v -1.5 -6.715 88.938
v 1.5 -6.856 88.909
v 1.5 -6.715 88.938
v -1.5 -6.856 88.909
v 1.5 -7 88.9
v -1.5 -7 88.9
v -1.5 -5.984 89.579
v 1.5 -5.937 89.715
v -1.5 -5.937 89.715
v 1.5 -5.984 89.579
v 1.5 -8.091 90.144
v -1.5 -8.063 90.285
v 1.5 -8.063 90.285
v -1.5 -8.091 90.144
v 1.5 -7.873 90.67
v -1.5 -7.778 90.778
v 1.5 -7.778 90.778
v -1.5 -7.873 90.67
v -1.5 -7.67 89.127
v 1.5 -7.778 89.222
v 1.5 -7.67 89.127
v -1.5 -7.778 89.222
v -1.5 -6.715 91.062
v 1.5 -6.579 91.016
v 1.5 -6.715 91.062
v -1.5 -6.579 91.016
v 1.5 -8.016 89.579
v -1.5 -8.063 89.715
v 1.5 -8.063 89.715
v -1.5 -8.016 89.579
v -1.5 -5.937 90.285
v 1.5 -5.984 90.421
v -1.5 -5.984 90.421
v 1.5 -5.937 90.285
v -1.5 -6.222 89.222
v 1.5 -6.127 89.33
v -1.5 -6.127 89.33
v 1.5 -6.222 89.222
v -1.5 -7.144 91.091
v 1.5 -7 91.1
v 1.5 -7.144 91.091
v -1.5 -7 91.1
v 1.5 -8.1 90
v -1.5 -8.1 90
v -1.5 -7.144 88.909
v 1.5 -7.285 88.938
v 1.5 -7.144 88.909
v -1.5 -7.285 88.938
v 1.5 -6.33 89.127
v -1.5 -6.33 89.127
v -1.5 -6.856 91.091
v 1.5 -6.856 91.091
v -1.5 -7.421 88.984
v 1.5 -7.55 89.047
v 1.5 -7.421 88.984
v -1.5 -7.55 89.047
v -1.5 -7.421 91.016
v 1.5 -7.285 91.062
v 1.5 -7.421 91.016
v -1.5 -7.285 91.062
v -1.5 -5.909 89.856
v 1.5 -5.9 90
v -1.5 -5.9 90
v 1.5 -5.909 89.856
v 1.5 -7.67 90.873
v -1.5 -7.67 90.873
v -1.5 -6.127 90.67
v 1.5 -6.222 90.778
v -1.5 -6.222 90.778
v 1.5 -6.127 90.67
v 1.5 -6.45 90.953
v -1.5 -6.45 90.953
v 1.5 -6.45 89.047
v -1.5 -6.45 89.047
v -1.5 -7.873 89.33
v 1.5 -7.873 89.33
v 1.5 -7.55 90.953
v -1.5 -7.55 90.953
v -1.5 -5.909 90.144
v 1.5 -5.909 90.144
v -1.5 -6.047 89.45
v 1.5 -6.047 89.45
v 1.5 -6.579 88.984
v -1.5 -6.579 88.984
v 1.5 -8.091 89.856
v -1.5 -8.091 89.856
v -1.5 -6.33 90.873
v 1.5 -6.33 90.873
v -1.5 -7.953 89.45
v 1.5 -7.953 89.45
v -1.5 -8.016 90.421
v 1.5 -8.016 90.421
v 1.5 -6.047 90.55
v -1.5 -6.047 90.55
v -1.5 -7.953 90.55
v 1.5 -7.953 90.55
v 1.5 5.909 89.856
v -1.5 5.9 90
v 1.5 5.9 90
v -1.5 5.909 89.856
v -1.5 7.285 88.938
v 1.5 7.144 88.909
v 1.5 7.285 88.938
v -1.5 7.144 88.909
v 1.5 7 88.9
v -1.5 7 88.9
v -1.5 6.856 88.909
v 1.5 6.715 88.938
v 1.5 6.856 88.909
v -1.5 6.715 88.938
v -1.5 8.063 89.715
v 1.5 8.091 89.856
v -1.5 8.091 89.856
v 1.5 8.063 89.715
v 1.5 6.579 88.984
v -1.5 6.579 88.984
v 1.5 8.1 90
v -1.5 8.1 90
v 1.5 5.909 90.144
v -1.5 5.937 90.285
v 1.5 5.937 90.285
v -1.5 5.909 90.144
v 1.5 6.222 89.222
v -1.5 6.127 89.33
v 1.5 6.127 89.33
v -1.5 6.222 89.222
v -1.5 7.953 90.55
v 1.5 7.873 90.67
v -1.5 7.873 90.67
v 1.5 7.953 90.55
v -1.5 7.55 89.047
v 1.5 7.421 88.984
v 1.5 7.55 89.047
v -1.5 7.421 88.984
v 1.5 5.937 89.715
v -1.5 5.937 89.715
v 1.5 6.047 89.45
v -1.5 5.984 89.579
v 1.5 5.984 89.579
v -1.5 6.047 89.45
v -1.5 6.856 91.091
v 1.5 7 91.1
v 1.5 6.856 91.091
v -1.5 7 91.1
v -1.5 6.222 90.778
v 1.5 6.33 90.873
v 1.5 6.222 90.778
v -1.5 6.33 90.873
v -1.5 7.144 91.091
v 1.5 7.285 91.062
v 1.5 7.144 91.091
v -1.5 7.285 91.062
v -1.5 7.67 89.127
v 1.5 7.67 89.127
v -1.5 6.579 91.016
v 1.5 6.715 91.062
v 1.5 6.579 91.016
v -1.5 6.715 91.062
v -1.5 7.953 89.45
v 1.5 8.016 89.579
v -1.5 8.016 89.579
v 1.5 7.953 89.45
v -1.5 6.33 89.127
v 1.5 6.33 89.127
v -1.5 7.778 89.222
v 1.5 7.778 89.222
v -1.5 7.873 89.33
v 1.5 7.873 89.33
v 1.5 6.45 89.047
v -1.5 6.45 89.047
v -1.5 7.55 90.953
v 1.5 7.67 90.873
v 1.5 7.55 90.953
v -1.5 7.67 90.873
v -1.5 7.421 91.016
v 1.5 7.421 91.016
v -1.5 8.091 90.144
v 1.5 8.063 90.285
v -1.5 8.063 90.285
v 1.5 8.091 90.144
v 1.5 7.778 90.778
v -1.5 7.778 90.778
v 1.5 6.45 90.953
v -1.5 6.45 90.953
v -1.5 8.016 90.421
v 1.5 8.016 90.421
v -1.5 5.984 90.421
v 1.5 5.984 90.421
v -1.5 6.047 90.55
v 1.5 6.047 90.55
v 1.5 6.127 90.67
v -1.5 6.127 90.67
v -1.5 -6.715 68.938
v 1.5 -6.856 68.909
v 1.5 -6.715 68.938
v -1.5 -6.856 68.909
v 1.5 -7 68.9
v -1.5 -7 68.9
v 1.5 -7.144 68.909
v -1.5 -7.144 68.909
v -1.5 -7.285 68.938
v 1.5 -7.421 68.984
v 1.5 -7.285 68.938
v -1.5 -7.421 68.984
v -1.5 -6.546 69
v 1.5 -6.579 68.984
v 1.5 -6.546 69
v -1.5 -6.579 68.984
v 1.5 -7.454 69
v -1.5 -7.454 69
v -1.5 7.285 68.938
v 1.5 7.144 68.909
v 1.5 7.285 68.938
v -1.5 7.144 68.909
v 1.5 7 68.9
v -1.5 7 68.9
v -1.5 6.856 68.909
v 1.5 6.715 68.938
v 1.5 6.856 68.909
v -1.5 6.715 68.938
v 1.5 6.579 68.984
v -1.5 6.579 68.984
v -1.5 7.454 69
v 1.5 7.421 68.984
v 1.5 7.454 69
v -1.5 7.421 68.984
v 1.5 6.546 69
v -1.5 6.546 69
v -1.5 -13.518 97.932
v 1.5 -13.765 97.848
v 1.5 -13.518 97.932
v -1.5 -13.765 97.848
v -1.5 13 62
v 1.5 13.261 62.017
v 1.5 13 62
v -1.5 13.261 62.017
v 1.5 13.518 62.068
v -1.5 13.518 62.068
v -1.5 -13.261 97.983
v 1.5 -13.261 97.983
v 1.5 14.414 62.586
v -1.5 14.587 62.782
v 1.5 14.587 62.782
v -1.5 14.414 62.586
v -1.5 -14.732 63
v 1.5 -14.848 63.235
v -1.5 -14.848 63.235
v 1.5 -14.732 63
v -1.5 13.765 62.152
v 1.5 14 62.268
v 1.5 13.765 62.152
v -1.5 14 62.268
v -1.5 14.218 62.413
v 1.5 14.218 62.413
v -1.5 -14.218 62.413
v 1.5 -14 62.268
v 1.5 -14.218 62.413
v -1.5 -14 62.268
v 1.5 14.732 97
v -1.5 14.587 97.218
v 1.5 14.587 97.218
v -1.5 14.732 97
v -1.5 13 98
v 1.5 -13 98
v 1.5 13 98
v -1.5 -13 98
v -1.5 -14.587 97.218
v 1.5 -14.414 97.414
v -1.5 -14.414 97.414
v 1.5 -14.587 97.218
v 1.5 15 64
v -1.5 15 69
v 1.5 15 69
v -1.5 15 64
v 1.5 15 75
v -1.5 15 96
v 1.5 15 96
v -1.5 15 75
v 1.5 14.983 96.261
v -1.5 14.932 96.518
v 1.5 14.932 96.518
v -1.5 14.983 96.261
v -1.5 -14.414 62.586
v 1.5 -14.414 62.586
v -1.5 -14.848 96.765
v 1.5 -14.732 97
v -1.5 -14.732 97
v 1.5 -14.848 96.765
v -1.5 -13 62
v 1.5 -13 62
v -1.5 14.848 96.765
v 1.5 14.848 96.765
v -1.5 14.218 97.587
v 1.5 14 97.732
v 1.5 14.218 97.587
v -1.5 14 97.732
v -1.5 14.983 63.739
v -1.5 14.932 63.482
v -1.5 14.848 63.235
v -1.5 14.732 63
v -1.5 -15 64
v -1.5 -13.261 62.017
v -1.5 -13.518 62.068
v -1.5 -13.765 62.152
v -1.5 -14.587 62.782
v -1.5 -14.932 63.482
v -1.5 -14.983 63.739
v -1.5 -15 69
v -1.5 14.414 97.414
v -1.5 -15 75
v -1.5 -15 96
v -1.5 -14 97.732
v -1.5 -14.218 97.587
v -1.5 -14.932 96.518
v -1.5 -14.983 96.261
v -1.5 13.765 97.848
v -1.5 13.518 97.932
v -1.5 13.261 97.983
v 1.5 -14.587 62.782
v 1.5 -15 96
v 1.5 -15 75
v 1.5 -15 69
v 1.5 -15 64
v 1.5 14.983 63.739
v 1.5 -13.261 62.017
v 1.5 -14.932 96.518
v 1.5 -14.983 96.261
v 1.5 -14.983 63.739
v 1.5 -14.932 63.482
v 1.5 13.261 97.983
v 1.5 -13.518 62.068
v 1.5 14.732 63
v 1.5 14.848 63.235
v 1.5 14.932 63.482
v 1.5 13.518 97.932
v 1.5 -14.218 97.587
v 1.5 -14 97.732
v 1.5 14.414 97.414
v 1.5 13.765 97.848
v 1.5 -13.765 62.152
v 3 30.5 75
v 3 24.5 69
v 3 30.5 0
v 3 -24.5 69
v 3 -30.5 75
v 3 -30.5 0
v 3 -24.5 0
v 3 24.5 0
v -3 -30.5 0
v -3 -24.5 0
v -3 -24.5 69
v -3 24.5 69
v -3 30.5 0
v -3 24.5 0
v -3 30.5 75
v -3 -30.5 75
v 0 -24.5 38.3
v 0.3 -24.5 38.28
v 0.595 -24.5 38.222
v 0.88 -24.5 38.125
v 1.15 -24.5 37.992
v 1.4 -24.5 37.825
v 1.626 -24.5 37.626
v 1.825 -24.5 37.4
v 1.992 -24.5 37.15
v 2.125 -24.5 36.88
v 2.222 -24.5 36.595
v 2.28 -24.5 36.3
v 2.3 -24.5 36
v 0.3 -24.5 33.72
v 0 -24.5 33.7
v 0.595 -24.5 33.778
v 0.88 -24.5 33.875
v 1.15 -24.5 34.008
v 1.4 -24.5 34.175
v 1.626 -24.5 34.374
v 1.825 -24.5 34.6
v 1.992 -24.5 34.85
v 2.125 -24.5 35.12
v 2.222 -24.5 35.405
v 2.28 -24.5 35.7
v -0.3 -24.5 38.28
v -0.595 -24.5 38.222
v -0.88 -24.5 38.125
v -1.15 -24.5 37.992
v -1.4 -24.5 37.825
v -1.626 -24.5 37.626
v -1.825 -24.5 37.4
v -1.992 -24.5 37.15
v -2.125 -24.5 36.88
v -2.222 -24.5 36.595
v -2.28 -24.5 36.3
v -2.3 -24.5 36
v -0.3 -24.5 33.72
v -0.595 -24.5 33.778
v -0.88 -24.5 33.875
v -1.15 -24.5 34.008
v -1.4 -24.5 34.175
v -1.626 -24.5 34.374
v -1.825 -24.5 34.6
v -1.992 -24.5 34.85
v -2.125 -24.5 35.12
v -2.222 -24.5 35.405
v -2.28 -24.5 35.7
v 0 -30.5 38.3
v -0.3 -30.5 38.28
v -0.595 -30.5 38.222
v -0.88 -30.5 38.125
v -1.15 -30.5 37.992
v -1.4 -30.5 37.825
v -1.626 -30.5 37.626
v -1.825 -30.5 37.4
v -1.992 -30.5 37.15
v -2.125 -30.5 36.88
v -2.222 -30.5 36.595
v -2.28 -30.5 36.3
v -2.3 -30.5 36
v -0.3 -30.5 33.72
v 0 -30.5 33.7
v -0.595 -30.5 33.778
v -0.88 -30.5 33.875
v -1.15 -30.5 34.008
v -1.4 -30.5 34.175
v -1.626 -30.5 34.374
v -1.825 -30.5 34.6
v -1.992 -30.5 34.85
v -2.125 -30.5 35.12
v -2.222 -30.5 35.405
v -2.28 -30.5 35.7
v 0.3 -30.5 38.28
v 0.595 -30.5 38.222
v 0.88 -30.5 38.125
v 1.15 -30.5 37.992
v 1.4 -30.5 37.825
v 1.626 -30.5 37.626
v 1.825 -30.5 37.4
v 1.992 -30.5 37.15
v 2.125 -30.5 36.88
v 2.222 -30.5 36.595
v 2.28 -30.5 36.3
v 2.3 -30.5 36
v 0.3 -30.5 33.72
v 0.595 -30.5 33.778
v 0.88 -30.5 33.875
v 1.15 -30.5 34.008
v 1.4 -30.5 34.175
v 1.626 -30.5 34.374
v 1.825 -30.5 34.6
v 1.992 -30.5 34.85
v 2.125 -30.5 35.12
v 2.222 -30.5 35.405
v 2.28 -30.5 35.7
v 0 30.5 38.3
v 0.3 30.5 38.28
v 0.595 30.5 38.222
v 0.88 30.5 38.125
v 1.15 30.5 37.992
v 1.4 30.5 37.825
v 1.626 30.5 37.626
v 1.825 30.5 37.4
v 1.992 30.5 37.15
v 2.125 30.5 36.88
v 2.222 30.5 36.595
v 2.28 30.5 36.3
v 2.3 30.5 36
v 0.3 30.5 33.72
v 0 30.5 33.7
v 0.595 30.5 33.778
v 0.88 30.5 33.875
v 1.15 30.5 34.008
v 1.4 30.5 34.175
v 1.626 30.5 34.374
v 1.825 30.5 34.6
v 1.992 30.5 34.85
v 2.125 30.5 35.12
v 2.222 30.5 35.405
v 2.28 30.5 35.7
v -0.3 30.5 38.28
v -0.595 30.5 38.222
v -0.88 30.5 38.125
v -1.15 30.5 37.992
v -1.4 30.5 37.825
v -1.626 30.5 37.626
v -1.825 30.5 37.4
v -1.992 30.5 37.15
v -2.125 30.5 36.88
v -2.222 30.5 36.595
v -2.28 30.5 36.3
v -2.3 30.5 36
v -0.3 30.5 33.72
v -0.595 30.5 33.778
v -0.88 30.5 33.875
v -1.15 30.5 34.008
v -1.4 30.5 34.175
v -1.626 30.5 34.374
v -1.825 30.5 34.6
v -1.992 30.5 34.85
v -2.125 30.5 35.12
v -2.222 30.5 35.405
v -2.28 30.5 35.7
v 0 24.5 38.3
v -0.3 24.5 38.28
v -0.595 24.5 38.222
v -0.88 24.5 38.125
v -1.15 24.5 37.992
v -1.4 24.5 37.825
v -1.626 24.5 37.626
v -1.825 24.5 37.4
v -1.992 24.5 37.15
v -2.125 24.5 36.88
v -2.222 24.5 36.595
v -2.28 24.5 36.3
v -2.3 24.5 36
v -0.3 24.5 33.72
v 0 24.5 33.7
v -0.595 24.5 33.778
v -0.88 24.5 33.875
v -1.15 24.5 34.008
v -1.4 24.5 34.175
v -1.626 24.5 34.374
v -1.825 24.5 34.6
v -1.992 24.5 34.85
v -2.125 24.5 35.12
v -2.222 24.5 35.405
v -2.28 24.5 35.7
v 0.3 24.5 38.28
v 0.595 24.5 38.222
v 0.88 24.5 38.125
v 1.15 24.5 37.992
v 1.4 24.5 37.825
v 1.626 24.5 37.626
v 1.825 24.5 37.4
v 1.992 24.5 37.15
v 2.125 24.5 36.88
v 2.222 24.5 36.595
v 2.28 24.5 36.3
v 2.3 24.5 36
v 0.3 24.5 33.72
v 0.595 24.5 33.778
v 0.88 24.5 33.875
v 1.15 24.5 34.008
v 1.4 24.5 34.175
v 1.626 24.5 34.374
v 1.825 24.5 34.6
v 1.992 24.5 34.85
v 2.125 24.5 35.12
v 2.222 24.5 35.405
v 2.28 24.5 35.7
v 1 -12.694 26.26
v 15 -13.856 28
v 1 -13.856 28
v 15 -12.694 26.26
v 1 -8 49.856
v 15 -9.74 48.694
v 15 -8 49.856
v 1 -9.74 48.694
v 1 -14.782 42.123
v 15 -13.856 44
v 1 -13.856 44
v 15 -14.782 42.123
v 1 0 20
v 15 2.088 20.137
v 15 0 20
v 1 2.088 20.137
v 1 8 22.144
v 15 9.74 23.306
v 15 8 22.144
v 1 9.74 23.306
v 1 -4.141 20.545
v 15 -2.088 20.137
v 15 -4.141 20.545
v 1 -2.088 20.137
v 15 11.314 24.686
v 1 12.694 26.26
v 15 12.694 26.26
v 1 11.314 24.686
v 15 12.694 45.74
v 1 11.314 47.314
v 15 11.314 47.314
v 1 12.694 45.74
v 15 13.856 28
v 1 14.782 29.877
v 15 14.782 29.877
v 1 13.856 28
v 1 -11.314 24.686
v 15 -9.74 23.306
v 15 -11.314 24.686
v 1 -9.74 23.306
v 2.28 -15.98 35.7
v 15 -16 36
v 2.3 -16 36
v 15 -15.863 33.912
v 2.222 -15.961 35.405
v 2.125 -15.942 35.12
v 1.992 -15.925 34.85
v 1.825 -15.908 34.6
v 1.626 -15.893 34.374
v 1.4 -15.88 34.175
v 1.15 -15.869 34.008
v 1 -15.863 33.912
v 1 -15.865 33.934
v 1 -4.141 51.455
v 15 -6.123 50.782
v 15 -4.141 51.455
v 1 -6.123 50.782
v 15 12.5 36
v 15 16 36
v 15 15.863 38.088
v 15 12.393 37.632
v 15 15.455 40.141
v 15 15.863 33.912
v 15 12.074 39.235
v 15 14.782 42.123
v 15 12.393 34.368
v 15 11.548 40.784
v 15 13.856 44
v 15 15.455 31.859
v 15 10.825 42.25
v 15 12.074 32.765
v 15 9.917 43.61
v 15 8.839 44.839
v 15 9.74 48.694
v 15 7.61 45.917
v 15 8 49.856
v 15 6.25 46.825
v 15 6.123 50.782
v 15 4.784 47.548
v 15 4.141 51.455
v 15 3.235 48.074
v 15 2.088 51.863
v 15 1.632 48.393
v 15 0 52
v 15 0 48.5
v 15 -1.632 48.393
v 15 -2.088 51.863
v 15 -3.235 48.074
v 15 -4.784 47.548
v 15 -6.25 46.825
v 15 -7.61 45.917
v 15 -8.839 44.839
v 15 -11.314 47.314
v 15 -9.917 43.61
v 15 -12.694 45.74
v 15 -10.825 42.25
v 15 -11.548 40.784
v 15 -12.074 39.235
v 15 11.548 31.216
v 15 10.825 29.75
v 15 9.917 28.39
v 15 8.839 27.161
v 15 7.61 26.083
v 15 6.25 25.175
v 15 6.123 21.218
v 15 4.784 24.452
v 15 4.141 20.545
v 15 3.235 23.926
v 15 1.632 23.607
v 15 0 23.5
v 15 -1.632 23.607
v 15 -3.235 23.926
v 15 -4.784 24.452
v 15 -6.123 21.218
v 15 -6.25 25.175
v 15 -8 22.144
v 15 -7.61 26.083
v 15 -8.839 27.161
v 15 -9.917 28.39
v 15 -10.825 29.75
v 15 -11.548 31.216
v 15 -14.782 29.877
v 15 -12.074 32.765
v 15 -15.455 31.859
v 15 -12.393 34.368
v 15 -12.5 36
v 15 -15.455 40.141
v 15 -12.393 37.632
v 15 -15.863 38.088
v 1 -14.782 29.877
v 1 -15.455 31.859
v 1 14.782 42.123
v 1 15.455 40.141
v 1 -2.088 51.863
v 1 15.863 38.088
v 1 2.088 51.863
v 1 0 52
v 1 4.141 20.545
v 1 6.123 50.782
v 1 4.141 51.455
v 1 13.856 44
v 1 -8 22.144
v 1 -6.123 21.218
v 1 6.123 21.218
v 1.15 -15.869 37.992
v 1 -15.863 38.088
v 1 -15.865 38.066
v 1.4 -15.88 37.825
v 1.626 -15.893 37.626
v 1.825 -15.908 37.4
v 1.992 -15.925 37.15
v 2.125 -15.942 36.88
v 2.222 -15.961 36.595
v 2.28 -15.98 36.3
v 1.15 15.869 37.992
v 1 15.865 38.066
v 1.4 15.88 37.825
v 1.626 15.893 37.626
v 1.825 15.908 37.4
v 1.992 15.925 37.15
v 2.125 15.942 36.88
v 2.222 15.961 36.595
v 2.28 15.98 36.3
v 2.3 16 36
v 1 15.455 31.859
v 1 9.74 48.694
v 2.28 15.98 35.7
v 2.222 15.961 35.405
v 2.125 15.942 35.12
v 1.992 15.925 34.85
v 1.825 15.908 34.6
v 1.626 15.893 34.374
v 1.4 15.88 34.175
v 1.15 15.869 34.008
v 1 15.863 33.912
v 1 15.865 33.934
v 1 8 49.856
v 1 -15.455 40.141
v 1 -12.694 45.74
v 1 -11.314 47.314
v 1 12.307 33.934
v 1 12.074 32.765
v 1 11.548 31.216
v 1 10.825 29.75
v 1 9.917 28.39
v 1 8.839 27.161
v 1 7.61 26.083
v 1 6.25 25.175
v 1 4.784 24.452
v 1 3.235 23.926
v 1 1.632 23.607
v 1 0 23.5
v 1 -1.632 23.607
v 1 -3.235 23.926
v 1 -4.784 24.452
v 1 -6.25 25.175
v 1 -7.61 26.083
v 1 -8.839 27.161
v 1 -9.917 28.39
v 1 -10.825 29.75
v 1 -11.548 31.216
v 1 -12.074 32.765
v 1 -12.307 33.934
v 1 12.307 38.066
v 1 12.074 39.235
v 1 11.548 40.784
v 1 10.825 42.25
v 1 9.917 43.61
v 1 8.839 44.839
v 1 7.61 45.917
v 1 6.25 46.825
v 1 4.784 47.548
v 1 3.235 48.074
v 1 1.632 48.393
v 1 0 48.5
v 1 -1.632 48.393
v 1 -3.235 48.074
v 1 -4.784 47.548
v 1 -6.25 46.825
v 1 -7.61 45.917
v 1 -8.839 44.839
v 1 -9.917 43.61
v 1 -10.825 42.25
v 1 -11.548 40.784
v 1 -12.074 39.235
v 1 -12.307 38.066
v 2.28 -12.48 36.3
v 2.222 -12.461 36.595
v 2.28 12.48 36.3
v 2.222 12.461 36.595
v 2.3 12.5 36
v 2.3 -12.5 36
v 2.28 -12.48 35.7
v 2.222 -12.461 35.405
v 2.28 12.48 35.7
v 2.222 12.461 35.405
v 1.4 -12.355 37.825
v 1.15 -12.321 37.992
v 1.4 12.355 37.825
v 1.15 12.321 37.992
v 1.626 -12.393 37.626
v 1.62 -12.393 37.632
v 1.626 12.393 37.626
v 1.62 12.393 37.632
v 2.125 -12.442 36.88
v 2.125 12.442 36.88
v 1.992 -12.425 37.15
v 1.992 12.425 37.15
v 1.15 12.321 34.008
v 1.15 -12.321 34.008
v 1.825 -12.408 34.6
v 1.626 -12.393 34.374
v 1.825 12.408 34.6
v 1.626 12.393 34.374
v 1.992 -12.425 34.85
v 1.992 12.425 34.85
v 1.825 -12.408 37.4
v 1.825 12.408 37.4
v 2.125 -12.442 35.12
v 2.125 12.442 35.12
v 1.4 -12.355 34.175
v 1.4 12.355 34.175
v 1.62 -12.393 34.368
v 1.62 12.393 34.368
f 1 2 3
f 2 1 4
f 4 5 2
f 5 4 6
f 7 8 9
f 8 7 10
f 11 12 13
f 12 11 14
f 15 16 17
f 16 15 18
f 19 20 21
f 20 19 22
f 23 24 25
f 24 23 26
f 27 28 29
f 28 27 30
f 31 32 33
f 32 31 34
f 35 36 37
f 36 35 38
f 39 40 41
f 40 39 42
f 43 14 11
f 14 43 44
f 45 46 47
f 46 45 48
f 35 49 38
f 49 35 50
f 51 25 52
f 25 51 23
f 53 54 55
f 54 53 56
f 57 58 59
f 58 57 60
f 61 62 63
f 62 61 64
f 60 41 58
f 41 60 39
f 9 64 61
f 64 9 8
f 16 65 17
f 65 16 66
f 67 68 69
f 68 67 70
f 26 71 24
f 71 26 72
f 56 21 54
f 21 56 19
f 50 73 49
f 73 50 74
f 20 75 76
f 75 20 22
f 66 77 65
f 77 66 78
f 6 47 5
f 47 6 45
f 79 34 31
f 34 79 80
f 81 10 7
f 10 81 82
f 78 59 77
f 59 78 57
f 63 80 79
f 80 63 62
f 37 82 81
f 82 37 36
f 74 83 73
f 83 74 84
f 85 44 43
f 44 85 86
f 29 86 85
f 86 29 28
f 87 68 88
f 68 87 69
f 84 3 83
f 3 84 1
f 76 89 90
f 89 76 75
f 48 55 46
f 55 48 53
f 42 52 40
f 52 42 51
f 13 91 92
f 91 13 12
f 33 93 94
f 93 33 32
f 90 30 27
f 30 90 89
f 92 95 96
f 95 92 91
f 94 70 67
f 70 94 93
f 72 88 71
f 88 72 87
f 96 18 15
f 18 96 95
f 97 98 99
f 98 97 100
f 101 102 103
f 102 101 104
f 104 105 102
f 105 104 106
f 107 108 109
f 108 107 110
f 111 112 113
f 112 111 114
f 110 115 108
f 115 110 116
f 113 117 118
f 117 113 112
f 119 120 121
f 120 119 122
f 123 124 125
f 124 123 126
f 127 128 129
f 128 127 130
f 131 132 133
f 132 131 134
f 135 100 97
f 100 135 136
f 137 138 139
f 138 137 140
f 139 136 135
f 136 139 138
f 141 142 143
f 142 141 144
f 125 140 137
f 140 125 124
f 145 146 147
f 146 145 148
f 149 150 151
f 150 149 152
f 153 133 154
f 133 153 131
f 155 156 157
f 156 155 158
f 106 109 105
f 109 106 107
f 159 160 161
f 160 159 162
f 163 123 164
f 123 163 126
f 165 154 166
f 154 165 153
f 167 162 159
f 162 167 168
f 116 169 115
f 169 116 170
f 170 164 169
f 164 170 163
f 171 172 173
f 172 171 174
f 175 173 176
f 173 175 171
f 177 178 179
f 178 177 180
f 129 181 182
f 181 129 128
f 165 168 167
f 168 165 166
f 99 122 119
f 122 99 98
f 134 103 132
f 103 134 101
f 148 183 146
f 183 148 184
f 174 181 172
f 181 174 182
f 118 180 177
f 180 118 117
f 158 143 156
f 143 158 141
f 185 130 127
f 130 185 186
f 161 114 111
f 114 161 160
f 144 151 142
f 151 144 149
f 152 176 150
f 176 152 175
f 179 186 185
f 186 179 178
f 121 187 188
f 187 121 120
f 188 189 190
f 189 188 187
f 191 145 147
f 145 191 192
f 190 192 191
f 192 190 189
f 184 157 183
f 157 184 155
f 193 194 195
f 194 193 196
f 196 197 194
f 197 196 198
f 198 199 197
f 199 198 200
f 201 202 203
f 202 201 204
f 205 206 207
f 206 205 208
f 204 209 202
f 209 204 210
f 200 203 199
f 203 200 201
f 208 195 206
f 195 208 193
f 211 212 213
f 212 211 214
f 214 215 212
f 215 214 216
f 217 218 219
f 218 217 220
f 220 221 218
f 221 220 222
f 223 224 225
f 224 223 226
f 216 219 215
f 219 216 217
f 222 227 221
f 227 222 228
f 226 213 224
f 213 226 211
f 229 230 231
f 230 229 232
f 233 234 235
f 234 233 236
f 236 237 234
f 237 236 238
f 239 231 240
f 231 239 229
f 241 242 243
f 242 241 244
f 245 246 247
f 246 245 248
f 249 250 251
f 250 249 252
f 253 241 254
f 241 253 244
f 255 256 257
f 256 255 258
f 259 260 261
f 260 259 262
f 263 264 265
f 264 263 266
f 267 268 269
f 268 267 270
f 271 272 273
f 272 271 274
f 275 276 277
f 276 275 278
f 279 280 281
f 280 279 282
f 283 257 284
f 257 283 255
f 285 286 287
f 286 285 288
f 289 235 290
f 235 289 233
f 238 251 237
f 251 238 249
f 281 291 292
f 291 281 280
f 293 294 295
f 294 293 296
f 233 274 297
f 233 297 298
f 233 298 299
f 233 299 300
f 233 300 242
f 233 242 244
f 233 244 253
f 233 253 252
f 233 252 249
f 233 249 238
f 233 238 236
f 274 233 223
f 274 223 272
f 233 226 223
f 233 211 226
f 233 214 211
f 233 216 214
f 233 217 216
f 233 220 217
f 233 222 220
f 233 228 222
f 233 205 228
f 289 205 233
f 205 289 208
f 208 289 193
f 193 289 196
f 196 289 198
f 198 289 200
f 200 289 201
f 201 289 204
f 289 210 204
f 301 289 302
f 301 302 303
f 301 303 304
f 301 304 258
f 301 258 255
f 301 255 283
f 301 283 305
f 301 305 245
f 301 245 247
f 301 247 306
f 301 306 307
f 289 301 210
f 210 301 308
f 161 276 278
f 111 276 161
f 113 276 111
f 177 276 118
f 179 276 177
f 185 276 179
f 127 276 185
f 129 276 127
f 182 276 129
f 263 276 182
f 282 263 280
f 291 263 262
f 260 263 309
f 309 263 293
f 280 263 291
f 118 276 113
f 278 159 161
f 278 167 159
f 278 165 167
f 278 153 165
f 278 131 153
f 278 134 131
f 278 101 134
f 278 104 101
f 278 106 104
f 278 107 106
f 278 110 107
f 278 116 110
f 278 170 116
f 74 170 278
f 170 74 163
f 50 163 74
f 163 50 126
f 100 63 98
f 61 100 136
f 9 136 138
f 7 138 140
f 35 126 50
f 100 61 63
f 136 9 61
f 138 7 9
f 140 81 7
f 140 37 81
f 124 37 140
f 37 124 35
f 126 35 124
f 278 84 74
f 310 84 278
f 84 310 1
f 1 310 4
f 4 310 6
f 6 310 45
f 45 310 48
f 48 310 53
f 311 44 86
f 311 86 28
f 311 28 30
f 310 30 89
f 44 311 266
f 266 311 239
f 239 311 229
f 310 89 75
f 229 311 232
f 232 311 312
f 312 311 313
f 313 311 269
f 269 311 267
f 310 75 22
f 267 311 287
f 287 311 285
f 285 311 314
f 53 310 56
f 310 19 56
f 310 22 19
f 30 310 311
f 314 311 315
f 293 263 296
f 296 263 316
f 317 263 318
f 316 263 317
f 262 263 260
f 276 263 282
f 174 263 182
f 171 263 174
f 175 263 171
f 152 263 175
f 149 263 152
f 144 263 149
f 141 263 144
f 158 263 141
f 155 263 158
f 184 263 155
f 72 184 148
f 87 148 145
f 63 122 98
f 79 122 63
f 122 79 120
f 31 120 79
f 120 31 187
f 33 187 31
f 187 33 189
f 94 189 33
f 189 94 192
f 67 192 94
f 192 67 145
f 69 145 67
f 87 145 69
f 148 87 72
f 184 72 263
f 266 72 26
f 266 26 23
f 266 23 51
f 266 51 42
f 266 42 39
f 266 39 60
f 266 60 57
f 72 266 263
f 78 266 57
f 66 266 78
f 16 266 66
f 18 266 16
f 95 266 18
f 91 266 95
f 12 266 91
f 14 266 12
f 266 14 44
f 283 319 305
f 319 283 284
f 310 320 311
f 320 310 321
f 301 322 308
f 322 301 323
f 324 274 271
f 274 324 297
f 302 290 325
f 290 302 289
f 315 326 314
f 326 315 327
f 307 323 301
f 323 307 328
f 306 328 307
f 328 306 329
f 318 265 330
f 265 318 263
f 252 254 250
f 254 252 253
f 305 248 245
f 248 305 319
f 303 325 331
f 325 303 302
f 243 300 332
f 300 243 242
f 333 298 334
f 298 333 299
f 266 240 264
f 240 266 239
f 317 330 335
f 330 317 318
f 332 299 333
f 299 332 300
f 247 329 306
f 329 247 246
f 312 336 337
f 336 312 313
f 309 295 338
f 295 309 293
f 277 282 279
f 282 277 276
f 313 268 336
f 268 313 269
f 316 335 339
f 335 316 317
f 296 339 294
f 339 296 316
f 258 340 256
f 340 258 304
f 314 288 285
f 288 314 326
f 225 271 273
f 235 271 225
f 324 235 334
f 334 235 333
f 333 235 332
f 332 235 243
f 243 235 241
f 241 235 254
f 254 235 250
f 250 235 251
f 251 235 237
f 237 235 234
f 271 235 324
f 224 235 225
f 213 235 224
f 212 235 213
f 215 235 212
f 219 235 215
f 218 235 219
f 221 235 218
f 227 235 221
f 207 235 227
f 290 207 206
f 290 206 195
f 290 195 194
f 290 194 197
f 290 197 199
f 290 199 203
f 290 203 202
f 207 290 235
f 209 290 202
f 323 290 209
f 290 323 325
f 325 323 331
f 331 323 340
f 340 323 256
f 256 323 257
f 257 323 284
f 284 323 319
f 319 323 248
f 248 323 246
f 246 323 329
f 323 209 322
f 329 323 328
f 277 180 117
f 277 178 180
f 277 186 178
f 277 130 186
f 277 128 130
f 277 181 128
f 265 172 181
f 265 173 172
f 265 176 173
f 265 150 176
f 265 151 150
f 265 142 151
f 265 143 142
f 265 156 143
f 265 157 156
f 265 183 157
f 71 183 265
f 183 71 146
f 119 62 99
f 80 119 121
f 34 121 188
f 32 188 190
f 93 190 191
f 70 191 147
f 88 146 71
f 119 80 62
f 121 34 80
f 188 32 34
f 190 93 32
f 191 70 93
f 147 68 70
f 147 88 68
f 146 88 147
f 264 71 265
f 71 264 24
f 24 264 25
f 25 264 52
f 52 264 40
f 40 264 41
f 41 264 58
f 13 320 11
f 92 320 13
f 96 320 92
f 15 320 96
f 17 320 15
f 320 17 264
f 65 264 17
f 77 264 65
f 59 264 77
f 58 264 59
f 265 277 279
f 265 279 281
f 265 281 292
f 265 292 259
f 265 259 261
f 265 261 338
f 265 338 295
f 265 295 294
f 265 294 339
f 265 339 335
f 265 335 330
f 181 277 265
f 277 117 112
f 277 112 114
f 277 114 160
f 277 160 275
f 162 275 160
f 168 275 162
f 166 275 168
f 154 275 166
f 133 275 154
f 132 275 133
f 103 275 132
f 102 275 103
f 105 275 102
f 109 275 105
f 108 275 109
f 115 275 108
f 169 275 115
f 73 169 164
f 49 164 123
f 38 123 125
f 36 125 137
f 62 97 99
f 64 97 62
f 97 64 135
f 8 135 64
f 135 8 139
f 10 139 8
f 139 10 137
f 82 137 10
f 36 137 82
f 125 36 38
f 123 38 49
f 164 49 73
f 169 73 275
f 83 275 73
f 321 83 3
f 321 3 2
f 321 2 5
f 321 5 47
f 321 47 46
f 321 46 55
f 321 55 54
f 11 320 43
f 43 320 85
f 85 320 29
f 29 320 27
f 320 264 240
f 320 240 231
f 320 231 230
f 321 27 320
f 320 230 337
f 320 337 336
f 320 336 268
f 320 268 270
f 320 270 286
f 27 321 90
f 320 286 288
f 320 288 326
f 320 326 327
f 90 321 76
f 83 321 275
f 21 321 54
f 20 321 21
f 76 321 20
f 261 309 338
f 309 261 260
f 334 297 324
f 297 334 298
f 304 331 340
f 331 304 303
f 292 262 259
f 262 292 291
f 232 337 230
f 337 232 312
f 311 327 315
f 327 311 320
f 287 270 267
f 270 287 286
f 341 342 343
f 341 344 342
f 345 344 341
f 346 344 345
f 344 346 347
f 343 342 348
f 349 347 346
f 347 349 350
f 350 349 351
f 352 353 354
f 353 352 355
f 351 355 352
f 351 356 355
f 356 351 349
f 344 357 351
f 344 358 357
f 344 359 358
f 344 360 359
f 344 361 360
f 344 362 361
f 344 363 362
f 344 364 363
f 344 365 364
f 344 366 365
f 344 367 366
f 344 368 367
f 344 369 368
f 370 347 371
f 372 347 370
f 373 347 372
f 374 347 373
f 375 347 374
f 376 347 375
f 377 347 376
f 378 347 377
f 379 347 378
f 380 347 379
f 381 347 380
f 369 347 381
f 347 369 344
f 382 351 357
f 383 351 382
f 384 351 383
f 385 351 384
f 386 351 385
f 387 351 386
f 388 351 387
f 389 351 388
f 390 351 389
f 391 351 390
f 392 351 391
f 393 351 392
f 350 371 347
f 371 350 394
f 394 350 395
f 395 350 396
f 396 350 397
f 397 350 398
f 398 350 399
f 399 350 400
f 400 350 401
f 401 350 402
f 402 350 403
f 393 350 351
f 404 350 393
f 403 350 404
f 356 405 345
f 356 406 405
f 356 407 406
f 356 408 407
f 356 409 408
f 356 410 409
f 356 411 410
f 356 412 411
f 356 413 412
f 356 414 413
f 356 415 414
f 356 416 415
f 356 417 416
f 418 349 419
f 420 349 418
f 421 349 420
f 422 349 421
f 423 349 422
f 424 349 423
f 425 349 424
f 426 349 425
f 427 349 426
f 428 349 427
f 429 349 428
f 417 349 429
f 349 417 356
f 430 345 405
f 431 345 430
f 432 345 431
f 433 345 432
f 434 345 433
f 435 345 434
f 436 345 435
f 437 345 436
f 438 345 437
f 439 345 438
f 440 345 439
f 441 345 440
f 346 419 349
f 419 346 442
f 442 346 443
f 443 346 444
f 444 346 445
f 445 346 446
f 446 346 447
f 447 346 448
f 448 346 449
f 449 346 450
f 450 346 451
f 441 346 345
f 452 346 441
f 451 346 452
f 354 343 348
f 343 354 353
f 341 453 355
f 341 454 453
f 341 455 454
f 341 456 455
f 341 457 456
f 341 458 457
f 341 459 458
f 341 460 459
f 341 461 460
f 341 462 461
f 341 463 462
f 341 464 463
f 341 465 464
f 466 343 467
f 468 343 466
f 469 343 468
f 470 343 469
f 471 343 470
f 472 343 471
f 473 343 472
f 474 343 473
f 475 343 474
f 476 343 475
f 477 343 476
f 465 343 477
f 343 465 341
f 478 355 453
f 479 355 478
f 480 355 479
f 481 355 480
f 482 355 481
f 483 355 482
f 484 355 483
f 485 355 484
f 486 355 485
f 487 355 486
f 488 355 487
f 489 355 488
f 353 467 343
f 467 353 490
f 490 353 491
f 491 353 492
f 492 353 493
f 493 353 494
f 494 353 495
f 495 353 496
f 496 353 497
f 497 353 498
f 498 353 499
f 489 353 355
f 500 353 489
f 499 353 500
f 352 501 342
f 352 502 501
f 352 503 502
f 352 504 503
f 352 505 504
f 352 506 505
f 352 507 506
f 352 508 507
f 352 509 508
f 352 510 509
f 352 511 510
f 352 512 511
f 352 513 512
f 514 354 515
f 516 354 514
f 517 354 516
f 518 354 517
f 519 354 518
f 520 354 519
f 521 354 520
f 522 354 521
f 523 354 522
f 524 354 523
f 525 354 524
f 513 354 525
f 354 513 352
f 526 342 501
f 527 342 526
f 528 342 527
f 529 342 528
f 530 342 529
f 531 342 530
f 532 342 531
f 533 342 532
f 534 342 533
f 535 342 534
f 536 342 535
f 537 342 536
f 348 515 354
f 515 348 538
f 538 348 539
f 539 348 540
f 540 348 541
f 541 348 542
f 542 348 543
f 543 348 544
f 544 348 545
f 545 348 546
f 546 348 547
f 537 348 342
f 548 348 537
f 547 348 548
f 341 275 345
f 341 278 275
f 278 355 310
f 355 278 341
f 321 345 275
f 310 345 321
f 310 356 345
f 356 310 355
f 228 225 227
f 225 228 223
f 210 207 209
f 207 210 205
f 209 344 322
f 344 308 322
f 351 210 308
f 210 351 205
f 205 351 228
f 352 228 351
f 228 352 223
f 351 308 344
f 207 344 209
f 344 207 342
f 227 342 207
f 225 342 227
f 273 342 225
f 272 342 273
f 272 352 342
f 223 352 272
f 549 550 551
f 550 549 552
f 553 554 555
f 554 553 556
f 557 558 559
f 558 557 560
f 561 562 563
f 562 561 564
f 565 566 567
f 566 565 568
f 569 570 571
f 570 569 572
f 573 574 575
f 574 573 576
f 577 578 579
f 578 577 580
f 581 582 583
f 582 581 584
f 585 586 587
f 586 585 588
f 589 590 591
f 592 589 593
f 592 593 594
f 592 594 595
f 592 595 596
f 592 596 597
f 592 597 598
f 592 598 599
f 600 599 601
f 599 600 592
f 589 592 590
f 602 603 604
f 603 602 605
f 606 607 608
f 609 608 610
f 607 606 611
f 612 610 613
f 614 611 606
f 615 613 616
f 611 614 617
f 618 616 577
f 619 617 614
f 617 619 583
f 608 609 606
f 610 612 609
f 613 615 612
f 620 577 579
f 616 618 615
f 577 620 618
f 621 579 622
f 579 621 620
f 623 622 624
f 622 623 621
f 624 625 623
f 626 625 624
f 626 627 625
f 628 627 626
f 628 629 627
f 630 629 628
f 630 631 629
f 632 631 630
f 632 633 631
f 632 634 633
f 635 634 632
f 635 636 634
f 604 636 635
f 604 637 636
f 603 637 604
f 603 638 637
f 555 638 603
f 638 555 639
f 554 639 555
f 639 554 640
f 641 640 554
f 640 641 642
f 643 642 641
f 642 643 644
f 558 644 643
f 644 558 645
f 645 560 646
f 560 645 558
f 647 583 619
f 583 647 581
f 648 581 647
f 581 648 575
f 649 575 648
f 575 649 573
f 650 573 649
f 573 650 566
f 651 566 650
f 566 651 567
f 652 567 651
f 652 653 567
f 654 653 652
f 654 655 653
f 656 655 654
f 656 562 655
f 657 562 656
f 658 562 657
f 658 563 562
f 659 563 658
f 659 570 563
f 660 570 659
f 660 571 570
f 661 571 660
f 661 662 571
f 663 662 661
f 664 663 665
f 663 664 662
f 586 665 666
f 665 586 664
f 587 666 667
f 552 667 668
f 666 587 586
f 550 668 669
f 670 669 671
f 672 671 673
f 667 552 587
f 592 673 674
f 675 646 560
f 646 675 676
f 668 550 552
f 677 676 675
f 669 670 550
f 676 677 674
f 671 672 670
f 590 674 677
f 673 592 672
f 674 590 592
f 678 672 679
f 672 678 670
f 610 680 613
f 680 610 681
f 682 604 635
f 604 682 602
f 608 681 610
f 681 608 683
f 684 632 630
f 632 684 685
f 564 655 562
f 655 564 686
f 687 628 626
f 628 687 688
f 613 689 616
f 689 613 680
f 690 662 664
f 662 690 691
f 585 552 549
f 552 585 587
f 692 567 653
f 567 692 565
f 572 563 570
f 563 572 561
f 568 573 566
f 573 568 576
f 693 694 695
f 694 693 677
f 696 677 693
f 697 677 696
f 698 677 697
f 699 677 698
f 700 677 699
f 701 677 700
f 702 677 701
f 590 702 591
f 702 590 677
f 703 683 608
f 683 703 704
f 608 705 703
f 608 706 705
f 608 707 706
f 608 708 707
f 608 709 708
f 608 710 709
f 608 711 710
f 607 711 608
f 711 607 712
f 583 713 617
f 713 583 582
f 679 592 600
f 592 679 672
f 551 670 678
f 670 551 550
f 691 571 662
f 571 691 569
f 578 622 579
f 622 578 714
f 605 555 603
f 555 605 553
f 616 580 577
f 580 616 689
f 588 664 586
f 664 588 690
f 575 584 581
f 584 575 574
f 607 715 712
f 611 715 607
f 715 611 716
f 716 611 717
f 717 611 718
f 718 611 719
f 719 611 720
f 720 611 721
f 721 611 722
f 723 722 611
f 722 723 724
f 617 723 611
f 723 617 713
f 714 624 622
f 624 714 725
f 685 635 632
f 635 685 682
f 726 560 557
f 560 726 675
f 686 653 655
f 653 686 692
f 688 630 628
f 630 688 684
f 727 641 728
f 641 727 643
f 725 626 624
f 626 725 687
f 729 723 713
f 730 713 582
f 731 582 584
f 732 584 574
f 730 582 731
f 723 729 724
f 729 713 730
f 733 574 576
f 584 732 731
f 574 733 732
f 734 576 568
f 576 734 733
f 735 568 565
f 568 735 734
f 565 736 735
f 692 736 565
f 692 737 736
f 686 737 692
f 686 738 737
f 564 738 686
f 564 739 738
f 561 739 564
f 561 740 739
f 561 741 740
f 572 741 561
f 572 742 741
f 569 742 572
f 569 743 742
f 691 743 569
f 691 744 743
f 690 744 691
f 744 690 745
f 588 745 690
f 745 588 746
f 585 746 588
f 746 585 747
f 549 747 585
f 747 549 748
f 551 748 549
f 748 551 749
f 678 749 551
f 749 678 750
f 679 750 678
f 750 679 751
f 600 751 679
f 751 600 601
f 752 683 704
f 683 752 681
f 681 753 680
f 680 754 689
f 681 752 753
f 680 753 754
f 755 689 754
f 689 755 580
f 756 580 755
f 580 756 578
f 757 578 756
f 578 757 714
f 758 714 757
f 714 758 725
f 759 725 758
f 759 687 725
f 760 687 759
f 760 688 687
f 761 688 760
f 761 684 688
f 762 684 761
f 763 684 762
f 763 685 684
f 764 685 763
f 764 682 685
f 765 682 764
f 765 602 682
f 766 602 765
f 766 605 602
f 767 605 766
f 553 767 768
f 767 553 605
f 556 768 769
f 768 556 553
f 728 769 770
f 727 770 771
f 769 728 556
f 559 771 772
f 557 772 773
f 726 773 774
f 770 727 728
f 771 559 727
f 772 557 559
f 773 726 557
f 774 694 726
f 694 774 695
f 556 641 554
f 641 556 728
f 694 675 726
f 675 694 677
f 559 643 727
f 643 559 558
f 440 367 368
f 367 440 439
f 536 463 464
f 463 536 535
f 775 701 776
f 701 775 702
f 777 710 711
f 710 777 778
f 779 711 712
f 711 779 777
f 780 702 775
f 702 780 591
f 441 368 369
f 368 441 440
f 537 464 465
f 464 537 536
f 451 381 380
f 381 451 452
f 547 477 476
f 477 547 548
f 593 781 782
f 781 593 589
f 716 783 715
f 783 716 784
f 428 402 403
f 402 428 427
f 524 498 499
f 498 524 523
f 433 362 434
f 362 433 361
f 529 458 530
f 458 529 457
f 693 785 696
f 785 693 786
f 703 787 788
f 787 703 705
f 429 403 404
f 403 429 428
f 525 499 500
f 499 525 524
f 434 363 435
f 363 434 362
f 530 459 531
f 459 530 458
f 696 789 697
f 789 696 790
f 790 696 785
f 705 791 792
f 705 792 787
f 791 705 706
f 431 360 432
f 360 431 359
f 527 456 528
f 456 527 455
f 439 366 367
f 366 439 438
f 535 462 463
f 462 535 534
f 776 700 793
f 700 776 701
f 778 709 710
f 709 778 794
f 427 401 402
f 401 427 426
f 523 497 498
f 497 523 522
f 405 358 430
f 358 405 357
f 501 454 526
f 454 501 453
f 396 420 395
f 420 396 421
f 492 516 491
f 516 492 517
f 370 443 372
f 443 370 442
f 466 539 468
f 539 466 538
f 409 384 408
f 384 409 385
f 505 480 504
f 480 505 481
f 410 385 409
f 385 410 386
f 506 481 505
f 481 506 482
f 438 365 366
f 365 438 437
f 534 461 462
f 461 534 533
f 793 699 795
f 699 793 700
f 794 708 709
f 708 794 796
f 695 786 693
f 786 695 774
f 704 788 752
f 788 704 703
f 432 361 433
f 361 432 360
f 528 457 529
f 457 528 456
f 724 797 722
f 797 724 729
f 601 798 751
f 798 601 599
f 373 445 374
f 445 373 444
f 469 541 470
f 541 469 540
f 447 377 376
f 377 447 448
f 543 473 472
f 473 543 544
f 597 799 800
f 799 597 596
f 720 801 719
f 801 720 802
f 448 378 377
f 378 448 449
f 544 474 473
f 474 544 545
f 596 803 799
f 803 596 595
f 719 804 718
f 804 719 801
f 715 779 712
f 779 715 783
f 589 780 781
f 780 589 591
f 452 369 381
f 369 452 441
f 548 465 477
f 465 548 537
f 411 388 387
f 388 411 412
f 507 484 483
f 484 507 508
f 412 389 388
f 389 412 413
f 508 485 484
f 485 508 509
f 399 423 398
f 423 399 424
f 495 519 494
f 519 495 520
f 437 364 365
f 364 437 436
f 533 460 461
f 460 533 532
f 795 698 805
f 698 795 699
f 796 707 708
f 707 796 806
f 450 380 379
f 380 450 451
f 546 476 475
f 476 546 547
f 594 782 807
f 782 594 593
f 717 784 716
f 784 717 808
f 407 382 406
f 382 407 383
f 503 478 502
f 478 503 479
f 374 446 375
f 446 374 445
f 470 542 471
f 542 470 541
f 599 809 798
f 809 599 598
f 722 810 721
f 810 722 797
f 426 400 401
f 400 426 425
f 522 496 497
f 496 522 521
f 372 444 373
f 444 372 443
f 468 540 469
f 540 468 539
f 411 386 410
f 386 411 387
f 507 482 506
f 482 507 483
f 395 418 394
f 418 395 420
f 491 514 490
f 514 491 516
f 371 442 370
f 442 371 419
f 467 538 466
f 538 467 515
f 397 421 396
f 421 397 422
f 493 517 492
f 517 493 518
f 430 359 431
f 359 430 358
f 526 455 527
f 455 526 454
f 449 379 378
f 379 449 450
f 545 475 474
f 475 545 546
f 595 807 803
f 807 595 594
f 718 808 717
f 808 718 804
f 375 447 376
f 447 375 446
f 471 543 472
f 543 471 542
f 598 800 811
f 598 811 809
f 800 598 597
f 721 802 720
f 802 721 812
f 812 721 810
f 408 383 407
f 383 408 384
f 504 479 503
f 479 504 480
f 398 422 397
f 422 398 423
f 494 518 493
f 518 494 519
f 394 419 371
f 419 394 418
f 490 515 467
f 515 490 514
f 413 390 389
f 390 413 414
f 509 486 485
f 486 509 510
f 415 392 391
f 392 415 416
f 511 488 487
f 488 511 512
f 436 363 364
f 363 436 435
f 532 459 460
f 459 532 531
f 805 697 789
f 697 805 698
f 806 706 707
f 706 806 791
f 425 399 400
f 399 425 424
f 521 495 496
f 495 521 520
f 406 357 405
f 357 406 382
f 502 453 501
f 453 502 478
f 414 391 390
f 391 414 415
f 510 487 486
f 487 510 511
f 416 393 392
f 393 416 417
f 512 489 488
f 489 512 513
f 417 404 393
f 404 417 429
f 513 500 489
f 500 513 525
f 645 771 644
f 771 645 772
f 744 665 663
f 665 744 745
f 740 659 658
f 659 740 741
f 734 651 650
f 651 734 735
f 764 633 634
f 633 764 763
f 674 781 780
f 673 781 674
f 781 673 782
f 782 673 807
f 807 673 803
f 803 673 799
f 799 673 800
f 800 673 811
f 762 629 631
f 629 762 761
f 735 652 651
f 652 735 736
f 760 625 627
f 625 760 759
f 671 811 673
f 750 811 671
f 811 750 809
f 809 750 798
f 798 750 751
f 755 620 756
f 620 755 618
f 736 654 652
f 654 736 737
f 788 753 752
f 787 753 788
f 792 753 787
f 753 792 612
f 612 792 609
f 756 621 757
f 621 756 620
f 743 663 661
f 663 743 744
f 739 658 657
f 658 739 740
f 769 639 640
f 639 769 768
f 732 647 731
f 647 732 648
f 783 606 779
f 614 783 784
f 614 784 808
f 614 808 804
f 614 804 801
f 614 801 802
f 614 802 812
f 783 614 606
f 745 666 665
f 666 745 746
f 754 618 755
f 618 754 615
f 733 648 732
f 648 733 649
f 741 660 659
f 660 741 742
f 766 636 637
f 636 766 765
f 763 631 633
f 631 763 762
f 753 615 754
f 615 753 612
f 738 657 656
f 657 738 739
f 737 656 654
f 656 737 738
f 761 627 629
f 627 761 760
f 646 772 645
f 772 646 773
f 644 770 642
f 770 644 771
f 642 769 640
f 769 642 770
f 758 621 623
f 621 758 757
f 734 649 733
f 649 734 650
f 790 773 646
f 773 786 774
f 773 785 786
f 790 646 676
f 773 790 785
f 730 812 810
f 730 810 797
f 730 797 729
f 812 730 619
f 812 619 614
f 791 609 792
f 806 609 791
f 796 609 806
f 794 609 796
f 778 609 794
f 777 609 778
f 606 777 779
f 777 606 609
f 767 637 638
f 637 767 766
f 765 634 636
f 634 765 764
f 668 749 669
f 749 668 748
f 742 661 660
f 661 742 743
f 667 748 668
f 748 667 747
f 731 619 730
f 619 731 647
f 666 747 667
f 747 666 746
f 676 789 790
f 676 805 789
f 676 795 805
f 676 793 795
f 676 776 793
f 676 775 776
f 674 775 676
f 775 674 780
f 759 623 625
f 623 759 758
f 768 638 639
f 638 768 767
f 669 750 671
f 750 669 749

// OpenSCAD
// file: common.scad
// Shared Rev A CAD parameters and helper modules.
// Units: millimeters.

$fn = 48;

// Hitec HS-625MG vendor baseline. Verify with calipers before final print.
servo_l = 40.6;
servo_w = 19.8;
servo_h = 37.8;
spline_d = 6.0;
spline_h = 5.0;
servo_mount_slot_l = 9.0;
servo_mount_slot_w = 3.4;
servo_mount_span_x = 49.5;
servo_mount_span_y = 27.5;

// Rev A structure.
base_l = 160;
base_w = 120;
base_t = 6;
wall_t = 6;
mount_t = 5;
outer_w = 95;
outer_h = 95;
outer_depth = 16;
inner_w = 55;
inner_h = 72;
nozzle_l = 85;
nozzle_d = 24;
imu_l = 28;
imu_w = 22;
bearing_d = 8.0;
shaft_d = 4.0;

// Manufacturing assumptions.
m3_clearance_d = 3.4;
bench_fastener_d = 5.0;
fillet_r = 3.0;

module rounded_plate(size_xyz, r=3) {
    hull() {
        for (x=[-size_xyz[0]/2+r, size_xyz[0]/2-r])
            for (y=[-size_xyz[1]/2+r, size_xyz[1]/2-r])
                translate([x, y, 0])
                    cylinder(h=size_xyz[2], r=r, center=true);
    }
}

module slotted_hole(slot_l, slot_w, h=2) {
    hull() {
        translate([-slot_l/2 + slot_w/2, 0, 0])
            cylinder(h=h, d=slot_w, center=true);
        translate([slot_l/2 - slot_w/2, 0, 0])
            cylinder(h=h, d=slot_w, center=true);
    }
}

module servo_mount_plate() {
    difference() {
        rounded_plate([servo_mount_span_x + 18, servo_mount_span_y + 16, mount_t], 2);

        for (x=[-servo_mount_span_x/2, servo_mount_span_x/2])
            for (y=[-servo_mount_span_y/2, servo_mount_span_y/2])
                translate([x, y, 0])
                    slotted_hole(servo_mount_slot_l, servo_mount_slot_w, mount_t + 1);
    }
}

module servo_body_clearance(extra=1.0) {
    cube([servo_l + extra, servo_w + extra, servo_h + extra], center=true);
}

module shaft_clearance(h=120) {
    rotate([90, 0, 0])
        cylinder(h=h, d=shaft_d + 0.6, center=true);
}

module imu_pad() {
    difference() {
        rounded_plate([imu_l + 8, imu_w + 8, 3], 2);
        for (x=[-(imu_l/2 - 4), imu_l/2 - 4])
            for (y=[-(imu_w/2 - 4), imu_w/2 - 4])
                translate([x, y, 0])
                    cylinder(h=4, d=2.2, center=true);
    }
}
// main file
include <common.scad>

// Rev A inner pitch/nozzle carrier.
// Print so the shaft features have good perimeter strength.

difference() {
    union() {
        translate([0, -inner_w/2, inner_h/2])
            cube([wall_t, wall_t, inner_h], center=true);
        translate([0, inner_w/2, inner_h/2])
            cube([wall_t, wall_t, inner_h], center=true);
        translate([0, 0, inner_h])
            cube([wall_t, inner_w + wall_t, wall_t], center=true);

        // IMU pad on controlled moving body.
        translate([0, 0, inner_h + 8])
            rotate([0, 90, 0])
                imu_pad();

        // Nozzle mounting boss.
        translate([8, 0, inner_h/2])
            rotate([0, 90, 0])
                cylinder(h=14, d=nozzle_d + 8, center=true);
    }

    // Pitch shaft clearance.
    translate([0, 0, inner_h/2])
        shaft_clearance(inner_w + 22);

    // Nozzle attachment clearance.
    translate([8, 0, inner_h/2])
        rotate([0, 90, 0])
            cylinder(h=16, d=nozzle_d + 1.0, center=true);
}
